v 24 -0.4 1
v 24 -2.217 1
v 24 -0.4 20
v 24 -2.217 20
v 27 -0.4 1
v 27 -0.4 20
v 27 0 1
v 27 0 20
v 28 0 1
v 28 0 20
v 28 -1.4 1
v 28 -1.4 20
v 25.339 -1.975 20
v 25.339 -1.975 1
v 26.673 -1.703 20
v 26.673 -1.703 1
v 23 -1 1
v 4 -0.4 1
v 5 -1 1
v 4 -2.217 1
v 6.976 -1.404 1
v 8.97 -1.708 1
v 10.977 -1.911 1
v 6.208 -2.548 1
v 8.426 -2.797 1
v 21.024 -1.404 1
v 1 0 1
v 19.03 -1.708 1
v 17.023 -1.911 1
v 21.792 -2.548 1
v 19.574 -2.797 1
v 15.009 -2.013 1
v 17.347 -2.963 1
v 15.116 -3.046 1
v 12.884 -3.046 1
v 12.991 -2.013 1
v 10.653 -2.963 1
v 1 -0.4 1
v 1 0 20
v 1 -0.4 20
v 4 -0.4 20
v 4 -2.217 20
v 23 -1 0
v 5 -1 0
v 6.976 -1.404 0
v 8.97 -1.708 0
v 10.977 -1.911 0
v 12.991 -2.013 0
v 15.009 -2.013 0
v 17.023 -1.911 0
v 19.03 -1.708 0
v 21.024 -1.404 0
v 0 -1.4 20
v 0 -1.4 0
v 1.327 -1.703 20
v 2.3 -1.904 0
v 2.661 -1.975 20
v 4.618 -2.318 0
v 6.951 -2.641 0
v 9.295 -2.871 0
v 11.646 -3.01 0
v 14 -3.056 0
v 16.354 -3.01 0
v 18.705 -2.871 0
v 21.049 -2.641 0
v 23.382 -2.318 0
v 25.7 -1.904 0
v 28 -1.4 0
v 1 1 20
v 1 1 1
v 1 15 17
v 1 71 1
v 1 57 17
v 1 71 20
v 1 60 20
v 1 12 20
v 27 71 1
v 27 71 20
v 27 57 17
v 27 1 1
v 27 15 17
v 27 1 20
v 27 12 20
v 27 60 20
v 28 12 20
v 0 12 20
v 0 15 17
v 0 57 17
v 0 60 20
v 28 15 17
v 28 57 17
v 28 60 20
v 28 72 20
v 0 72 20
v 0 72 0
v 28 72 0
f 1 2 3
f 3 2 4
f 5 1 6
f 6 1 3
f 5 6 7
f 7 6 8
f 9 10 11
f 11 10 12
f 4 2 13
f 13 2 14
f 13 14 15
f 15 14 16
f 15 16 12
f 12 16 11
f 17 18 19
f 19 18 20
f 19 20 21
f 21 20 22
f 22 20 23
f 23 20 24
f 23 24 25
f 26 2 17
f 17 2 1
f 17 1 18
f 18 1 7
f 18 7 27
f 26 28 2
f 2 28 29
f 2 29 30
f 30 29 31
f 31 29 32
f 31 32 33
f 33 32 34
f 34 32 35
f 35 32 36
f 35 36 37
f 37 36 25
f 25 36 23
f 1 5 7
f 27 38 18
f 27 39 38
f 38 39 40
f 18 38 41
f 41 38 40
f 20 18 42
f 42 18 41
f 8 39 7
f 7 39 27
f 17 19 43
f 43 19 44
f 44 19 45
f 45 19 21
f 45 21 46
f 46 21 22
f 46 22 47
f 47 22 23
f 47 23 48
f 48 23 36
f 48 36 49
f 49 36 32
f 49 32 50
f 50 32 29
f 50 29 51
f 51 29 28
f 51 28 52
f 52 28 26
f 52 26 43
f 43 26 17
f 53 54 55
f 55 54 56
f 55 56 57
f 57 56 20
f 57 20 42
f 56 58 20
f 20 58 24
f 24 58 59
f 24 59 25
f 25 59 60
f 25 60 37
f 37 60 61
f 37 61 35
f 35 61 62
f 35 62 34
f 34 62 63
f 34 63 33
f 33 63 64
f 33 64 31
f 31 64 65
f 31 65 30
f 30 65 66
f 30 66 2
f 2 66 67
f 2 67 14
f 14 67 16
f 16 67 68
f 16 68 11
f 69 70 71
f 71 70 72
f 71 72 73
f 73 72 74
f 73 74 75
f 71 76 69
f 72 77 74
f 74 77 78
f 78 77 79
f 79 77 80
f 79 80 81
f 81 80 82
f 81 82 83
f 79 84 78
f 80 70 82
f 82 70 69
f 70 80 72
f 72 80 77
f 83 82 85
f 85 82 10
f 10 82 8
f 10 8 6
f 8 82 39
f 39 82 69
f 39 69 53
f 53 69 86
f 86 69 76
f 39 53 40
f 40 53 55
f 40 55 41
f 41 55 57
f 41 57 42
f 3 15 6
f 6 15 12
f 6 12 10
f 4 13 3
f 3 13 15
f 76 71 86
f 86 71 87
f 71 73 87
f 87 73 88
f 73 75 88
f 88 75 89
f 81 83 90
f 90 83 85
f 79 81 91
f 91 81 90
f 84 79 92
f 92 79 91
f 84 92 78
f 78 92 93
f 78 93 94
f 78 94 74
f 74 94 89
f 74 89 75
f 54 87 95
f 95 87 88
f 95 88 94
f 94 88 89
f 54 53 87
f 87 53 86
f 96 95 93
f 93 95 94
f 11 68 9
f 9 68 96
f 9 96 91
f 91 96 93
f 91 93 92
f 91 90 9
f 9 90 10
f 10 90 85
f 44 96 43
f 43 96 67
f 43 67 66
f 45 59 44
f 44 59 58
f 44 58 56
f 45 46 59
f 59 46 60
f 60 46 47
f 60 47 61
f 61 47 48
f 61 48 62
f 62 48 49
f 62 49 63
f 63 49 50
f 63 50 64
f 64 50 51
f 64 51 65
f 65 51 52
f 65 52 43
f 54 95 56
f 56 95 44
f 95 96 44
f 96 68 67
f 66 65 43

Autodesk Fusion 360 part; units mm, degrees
sketch "Boceto1" plane through (0, 0, 0) normal (0, 0, 1) x (1, 0, 0)
  line L0 (0, 72) -> (28, 72)
  line L1 (28, 72) -> (28, 0)
  line L2 (28, 0) -> (0, 0)
  line L3 (0, 0) -> (0, 72)
  dimension "d1" = 72
  dimension "d2" = 28
extrude "Extruir1" add sketch "Boceto1" along normal blind 1 makes body 1
sketch "Boceto2" plane through (0, 0, 0) normal (1, 0, 0) x (0, 1, 0)
  line L0 (0, 1) -> (0, 20)
  line L1 (0, 20) -> (12, 20)
  line L2 (12, 20) -> (15, 17)
  line L3 (15, 17) -> (57, 17)
  line L4 (57, 17) -> (60, 20)
  line L5 (60, 20) -> (72, 20)
  line L6 (72, 20) -> (72, 1)
  line L7 (72, 1) -> (0, 1)
  line L8 (0, 1) -> (72, 1)
  dimension "d5" = 19
  dimension "d6" = 12
  dimension "d7" = 12
  dimension "d8" = 72
  dimension "d9" = 45
  dimension "d12" = 16
extrude "Extruir2" add sketch "Boceto2" along normal blind 28 bodies 1
shell "Vaciado1" thickness 1 removed faces 5 at (9.3333, 4, 20) at (9.3333, 13, 19) at (9.3333, 29, 17) at (9.3333, 58, 18) at (9.3333, 64, 20) on bodies 1
sketch "Boceto5" plane through (0, 0, 0) normal (0, 0, -1) x (1, 0, 0)
  line L0 (28, 0) -> (0, 0)
  line L1 (0, 0) -> (0, -72)
  line L2 (0, -72) -> (28, -72)
  line L3 (28, -72) -> (28, 0)
  line L4 (0, 0) -> (0, 1.4)
  line L5 (28, 0) -> (28, 1.4)
  arc A0 (28, 1.4) -> (0, 1.4) centre (14, -56.9438) ccw
  line L6 (0, 0) -> (28, 0)
  dimension "d28" = 1.4
  dimension "d29" = 1.4
  dimension "d30" = 60
extrude "Extruir3" add sketch "Boceto5" against normal blind 1 separate body contours L0 L4 L5 A0 L6 makes body 2
sketch "Boceto6" plane through (0, 0, 1) normal (0, 0, 1) x (-1, 0, 0)
  line L0 (-28, 0) -> (0, 0)
  line L1 (0, 0) -> (0, 1.4)
  arc A0 (0, 1.4) -> (-28, 1.4) centre (-14, -56.9438) ccw
  line L2 (-28, 1.4) -> (-28, 0)
  line L3 (-5, 1) -> (-23, 1)
  arc A1 (-5, 1) -> (-23, 1) centre (-14, -37.9744) ccw
  line L4 (0, 0) -> (-28, 0)
  dimension "d35" = 18
  dimension "d36" = 5
  dimension "d37" = 40
  dimension "d38" = 1
extrude "Extruir4" cut sketch "Boceto6" against normal blind 1 contours L3 A1 bodies 2
sketch "Boceto7" plane through (0, 0, 1) normal (0, 0, 1) x (-1, 0, 0)
  line L0 (-5, 1) -> (-23, 1)
  arc A0 (-5, 1) -> (-23, 1) centre (-14, -37.9744) ccw
  line L1 (-28, 0) -> (0, 0)
  line L2 (0, 0) -> (0, 1.4)
  arc A1 (0, 1.4) -> (-28, 1.4) centre (-14, -56.9438) ccw
  line L3 (-28, 1.4) -> (-28, 0)
  line L4 (-1, 0) -> (0, 0)
  line L5 (-4, 2.217) -> (-4, 0.4)
  line L6 (-4, 0.4) -> (-1, 0.4)
  line L7 (-1, 0.4) -> (-1, 0)
  arc A2 (0, 1.4) -> (-4, 2.217) centre (-14, -56.9438) ccw
  line L8 (-14, -72) -> (-14, 0) construction
  line L9 (-24, 0.4) -> (-27, 0.4)
  line L10 (-27, 0.4) -> (-27, 0)
  line L11 (-27, 0) -> (-28, 0)
  line L12 (-28, 0) -> (-28, 1.4)
  arc A3 (-24, 2.217) -> (-28, 1.4) centre (-14, -56.9438) ccw
  line L13 (-24, 2.217) -> (-24, 0.4)
  dimension "d39" = 0.4
  dimension "d40" = 1
  dimension "d41" = 4
  dimension "d42" = 60
extrude "Extruir5" add sketch "Boceto7" along normal blind 19 contours L1 A1 L3 L9 L10 L11 L12 A3 L13 | L1 L2 A1 L4 L5 L6 L7 A2 bodies 1 2
equation "d1 = internal_depth + 2 mm"
equation "d2 = internal_width + 2 mm"
equation "d5 = internal_height"
equation "d6 = ( internal_depth + 2 mm ) / 6"
equation "d7 = ( internal_depth + 2 mm ) / 6"
equation "d8 = internal_depth + 2 mm"
equation "d12 = internal_height - 3 mm"
equation "internal_depth = 70 mm"
equation "internal_width = 26 mm"
equation "internal_height = 19 mm"
equation "wall_width = 1 mm"
equation "d24 = wall_width"
equation "d35 = ( internal_width + 2 mm ) - 10 mm"
equation "d43 = internal_height"
